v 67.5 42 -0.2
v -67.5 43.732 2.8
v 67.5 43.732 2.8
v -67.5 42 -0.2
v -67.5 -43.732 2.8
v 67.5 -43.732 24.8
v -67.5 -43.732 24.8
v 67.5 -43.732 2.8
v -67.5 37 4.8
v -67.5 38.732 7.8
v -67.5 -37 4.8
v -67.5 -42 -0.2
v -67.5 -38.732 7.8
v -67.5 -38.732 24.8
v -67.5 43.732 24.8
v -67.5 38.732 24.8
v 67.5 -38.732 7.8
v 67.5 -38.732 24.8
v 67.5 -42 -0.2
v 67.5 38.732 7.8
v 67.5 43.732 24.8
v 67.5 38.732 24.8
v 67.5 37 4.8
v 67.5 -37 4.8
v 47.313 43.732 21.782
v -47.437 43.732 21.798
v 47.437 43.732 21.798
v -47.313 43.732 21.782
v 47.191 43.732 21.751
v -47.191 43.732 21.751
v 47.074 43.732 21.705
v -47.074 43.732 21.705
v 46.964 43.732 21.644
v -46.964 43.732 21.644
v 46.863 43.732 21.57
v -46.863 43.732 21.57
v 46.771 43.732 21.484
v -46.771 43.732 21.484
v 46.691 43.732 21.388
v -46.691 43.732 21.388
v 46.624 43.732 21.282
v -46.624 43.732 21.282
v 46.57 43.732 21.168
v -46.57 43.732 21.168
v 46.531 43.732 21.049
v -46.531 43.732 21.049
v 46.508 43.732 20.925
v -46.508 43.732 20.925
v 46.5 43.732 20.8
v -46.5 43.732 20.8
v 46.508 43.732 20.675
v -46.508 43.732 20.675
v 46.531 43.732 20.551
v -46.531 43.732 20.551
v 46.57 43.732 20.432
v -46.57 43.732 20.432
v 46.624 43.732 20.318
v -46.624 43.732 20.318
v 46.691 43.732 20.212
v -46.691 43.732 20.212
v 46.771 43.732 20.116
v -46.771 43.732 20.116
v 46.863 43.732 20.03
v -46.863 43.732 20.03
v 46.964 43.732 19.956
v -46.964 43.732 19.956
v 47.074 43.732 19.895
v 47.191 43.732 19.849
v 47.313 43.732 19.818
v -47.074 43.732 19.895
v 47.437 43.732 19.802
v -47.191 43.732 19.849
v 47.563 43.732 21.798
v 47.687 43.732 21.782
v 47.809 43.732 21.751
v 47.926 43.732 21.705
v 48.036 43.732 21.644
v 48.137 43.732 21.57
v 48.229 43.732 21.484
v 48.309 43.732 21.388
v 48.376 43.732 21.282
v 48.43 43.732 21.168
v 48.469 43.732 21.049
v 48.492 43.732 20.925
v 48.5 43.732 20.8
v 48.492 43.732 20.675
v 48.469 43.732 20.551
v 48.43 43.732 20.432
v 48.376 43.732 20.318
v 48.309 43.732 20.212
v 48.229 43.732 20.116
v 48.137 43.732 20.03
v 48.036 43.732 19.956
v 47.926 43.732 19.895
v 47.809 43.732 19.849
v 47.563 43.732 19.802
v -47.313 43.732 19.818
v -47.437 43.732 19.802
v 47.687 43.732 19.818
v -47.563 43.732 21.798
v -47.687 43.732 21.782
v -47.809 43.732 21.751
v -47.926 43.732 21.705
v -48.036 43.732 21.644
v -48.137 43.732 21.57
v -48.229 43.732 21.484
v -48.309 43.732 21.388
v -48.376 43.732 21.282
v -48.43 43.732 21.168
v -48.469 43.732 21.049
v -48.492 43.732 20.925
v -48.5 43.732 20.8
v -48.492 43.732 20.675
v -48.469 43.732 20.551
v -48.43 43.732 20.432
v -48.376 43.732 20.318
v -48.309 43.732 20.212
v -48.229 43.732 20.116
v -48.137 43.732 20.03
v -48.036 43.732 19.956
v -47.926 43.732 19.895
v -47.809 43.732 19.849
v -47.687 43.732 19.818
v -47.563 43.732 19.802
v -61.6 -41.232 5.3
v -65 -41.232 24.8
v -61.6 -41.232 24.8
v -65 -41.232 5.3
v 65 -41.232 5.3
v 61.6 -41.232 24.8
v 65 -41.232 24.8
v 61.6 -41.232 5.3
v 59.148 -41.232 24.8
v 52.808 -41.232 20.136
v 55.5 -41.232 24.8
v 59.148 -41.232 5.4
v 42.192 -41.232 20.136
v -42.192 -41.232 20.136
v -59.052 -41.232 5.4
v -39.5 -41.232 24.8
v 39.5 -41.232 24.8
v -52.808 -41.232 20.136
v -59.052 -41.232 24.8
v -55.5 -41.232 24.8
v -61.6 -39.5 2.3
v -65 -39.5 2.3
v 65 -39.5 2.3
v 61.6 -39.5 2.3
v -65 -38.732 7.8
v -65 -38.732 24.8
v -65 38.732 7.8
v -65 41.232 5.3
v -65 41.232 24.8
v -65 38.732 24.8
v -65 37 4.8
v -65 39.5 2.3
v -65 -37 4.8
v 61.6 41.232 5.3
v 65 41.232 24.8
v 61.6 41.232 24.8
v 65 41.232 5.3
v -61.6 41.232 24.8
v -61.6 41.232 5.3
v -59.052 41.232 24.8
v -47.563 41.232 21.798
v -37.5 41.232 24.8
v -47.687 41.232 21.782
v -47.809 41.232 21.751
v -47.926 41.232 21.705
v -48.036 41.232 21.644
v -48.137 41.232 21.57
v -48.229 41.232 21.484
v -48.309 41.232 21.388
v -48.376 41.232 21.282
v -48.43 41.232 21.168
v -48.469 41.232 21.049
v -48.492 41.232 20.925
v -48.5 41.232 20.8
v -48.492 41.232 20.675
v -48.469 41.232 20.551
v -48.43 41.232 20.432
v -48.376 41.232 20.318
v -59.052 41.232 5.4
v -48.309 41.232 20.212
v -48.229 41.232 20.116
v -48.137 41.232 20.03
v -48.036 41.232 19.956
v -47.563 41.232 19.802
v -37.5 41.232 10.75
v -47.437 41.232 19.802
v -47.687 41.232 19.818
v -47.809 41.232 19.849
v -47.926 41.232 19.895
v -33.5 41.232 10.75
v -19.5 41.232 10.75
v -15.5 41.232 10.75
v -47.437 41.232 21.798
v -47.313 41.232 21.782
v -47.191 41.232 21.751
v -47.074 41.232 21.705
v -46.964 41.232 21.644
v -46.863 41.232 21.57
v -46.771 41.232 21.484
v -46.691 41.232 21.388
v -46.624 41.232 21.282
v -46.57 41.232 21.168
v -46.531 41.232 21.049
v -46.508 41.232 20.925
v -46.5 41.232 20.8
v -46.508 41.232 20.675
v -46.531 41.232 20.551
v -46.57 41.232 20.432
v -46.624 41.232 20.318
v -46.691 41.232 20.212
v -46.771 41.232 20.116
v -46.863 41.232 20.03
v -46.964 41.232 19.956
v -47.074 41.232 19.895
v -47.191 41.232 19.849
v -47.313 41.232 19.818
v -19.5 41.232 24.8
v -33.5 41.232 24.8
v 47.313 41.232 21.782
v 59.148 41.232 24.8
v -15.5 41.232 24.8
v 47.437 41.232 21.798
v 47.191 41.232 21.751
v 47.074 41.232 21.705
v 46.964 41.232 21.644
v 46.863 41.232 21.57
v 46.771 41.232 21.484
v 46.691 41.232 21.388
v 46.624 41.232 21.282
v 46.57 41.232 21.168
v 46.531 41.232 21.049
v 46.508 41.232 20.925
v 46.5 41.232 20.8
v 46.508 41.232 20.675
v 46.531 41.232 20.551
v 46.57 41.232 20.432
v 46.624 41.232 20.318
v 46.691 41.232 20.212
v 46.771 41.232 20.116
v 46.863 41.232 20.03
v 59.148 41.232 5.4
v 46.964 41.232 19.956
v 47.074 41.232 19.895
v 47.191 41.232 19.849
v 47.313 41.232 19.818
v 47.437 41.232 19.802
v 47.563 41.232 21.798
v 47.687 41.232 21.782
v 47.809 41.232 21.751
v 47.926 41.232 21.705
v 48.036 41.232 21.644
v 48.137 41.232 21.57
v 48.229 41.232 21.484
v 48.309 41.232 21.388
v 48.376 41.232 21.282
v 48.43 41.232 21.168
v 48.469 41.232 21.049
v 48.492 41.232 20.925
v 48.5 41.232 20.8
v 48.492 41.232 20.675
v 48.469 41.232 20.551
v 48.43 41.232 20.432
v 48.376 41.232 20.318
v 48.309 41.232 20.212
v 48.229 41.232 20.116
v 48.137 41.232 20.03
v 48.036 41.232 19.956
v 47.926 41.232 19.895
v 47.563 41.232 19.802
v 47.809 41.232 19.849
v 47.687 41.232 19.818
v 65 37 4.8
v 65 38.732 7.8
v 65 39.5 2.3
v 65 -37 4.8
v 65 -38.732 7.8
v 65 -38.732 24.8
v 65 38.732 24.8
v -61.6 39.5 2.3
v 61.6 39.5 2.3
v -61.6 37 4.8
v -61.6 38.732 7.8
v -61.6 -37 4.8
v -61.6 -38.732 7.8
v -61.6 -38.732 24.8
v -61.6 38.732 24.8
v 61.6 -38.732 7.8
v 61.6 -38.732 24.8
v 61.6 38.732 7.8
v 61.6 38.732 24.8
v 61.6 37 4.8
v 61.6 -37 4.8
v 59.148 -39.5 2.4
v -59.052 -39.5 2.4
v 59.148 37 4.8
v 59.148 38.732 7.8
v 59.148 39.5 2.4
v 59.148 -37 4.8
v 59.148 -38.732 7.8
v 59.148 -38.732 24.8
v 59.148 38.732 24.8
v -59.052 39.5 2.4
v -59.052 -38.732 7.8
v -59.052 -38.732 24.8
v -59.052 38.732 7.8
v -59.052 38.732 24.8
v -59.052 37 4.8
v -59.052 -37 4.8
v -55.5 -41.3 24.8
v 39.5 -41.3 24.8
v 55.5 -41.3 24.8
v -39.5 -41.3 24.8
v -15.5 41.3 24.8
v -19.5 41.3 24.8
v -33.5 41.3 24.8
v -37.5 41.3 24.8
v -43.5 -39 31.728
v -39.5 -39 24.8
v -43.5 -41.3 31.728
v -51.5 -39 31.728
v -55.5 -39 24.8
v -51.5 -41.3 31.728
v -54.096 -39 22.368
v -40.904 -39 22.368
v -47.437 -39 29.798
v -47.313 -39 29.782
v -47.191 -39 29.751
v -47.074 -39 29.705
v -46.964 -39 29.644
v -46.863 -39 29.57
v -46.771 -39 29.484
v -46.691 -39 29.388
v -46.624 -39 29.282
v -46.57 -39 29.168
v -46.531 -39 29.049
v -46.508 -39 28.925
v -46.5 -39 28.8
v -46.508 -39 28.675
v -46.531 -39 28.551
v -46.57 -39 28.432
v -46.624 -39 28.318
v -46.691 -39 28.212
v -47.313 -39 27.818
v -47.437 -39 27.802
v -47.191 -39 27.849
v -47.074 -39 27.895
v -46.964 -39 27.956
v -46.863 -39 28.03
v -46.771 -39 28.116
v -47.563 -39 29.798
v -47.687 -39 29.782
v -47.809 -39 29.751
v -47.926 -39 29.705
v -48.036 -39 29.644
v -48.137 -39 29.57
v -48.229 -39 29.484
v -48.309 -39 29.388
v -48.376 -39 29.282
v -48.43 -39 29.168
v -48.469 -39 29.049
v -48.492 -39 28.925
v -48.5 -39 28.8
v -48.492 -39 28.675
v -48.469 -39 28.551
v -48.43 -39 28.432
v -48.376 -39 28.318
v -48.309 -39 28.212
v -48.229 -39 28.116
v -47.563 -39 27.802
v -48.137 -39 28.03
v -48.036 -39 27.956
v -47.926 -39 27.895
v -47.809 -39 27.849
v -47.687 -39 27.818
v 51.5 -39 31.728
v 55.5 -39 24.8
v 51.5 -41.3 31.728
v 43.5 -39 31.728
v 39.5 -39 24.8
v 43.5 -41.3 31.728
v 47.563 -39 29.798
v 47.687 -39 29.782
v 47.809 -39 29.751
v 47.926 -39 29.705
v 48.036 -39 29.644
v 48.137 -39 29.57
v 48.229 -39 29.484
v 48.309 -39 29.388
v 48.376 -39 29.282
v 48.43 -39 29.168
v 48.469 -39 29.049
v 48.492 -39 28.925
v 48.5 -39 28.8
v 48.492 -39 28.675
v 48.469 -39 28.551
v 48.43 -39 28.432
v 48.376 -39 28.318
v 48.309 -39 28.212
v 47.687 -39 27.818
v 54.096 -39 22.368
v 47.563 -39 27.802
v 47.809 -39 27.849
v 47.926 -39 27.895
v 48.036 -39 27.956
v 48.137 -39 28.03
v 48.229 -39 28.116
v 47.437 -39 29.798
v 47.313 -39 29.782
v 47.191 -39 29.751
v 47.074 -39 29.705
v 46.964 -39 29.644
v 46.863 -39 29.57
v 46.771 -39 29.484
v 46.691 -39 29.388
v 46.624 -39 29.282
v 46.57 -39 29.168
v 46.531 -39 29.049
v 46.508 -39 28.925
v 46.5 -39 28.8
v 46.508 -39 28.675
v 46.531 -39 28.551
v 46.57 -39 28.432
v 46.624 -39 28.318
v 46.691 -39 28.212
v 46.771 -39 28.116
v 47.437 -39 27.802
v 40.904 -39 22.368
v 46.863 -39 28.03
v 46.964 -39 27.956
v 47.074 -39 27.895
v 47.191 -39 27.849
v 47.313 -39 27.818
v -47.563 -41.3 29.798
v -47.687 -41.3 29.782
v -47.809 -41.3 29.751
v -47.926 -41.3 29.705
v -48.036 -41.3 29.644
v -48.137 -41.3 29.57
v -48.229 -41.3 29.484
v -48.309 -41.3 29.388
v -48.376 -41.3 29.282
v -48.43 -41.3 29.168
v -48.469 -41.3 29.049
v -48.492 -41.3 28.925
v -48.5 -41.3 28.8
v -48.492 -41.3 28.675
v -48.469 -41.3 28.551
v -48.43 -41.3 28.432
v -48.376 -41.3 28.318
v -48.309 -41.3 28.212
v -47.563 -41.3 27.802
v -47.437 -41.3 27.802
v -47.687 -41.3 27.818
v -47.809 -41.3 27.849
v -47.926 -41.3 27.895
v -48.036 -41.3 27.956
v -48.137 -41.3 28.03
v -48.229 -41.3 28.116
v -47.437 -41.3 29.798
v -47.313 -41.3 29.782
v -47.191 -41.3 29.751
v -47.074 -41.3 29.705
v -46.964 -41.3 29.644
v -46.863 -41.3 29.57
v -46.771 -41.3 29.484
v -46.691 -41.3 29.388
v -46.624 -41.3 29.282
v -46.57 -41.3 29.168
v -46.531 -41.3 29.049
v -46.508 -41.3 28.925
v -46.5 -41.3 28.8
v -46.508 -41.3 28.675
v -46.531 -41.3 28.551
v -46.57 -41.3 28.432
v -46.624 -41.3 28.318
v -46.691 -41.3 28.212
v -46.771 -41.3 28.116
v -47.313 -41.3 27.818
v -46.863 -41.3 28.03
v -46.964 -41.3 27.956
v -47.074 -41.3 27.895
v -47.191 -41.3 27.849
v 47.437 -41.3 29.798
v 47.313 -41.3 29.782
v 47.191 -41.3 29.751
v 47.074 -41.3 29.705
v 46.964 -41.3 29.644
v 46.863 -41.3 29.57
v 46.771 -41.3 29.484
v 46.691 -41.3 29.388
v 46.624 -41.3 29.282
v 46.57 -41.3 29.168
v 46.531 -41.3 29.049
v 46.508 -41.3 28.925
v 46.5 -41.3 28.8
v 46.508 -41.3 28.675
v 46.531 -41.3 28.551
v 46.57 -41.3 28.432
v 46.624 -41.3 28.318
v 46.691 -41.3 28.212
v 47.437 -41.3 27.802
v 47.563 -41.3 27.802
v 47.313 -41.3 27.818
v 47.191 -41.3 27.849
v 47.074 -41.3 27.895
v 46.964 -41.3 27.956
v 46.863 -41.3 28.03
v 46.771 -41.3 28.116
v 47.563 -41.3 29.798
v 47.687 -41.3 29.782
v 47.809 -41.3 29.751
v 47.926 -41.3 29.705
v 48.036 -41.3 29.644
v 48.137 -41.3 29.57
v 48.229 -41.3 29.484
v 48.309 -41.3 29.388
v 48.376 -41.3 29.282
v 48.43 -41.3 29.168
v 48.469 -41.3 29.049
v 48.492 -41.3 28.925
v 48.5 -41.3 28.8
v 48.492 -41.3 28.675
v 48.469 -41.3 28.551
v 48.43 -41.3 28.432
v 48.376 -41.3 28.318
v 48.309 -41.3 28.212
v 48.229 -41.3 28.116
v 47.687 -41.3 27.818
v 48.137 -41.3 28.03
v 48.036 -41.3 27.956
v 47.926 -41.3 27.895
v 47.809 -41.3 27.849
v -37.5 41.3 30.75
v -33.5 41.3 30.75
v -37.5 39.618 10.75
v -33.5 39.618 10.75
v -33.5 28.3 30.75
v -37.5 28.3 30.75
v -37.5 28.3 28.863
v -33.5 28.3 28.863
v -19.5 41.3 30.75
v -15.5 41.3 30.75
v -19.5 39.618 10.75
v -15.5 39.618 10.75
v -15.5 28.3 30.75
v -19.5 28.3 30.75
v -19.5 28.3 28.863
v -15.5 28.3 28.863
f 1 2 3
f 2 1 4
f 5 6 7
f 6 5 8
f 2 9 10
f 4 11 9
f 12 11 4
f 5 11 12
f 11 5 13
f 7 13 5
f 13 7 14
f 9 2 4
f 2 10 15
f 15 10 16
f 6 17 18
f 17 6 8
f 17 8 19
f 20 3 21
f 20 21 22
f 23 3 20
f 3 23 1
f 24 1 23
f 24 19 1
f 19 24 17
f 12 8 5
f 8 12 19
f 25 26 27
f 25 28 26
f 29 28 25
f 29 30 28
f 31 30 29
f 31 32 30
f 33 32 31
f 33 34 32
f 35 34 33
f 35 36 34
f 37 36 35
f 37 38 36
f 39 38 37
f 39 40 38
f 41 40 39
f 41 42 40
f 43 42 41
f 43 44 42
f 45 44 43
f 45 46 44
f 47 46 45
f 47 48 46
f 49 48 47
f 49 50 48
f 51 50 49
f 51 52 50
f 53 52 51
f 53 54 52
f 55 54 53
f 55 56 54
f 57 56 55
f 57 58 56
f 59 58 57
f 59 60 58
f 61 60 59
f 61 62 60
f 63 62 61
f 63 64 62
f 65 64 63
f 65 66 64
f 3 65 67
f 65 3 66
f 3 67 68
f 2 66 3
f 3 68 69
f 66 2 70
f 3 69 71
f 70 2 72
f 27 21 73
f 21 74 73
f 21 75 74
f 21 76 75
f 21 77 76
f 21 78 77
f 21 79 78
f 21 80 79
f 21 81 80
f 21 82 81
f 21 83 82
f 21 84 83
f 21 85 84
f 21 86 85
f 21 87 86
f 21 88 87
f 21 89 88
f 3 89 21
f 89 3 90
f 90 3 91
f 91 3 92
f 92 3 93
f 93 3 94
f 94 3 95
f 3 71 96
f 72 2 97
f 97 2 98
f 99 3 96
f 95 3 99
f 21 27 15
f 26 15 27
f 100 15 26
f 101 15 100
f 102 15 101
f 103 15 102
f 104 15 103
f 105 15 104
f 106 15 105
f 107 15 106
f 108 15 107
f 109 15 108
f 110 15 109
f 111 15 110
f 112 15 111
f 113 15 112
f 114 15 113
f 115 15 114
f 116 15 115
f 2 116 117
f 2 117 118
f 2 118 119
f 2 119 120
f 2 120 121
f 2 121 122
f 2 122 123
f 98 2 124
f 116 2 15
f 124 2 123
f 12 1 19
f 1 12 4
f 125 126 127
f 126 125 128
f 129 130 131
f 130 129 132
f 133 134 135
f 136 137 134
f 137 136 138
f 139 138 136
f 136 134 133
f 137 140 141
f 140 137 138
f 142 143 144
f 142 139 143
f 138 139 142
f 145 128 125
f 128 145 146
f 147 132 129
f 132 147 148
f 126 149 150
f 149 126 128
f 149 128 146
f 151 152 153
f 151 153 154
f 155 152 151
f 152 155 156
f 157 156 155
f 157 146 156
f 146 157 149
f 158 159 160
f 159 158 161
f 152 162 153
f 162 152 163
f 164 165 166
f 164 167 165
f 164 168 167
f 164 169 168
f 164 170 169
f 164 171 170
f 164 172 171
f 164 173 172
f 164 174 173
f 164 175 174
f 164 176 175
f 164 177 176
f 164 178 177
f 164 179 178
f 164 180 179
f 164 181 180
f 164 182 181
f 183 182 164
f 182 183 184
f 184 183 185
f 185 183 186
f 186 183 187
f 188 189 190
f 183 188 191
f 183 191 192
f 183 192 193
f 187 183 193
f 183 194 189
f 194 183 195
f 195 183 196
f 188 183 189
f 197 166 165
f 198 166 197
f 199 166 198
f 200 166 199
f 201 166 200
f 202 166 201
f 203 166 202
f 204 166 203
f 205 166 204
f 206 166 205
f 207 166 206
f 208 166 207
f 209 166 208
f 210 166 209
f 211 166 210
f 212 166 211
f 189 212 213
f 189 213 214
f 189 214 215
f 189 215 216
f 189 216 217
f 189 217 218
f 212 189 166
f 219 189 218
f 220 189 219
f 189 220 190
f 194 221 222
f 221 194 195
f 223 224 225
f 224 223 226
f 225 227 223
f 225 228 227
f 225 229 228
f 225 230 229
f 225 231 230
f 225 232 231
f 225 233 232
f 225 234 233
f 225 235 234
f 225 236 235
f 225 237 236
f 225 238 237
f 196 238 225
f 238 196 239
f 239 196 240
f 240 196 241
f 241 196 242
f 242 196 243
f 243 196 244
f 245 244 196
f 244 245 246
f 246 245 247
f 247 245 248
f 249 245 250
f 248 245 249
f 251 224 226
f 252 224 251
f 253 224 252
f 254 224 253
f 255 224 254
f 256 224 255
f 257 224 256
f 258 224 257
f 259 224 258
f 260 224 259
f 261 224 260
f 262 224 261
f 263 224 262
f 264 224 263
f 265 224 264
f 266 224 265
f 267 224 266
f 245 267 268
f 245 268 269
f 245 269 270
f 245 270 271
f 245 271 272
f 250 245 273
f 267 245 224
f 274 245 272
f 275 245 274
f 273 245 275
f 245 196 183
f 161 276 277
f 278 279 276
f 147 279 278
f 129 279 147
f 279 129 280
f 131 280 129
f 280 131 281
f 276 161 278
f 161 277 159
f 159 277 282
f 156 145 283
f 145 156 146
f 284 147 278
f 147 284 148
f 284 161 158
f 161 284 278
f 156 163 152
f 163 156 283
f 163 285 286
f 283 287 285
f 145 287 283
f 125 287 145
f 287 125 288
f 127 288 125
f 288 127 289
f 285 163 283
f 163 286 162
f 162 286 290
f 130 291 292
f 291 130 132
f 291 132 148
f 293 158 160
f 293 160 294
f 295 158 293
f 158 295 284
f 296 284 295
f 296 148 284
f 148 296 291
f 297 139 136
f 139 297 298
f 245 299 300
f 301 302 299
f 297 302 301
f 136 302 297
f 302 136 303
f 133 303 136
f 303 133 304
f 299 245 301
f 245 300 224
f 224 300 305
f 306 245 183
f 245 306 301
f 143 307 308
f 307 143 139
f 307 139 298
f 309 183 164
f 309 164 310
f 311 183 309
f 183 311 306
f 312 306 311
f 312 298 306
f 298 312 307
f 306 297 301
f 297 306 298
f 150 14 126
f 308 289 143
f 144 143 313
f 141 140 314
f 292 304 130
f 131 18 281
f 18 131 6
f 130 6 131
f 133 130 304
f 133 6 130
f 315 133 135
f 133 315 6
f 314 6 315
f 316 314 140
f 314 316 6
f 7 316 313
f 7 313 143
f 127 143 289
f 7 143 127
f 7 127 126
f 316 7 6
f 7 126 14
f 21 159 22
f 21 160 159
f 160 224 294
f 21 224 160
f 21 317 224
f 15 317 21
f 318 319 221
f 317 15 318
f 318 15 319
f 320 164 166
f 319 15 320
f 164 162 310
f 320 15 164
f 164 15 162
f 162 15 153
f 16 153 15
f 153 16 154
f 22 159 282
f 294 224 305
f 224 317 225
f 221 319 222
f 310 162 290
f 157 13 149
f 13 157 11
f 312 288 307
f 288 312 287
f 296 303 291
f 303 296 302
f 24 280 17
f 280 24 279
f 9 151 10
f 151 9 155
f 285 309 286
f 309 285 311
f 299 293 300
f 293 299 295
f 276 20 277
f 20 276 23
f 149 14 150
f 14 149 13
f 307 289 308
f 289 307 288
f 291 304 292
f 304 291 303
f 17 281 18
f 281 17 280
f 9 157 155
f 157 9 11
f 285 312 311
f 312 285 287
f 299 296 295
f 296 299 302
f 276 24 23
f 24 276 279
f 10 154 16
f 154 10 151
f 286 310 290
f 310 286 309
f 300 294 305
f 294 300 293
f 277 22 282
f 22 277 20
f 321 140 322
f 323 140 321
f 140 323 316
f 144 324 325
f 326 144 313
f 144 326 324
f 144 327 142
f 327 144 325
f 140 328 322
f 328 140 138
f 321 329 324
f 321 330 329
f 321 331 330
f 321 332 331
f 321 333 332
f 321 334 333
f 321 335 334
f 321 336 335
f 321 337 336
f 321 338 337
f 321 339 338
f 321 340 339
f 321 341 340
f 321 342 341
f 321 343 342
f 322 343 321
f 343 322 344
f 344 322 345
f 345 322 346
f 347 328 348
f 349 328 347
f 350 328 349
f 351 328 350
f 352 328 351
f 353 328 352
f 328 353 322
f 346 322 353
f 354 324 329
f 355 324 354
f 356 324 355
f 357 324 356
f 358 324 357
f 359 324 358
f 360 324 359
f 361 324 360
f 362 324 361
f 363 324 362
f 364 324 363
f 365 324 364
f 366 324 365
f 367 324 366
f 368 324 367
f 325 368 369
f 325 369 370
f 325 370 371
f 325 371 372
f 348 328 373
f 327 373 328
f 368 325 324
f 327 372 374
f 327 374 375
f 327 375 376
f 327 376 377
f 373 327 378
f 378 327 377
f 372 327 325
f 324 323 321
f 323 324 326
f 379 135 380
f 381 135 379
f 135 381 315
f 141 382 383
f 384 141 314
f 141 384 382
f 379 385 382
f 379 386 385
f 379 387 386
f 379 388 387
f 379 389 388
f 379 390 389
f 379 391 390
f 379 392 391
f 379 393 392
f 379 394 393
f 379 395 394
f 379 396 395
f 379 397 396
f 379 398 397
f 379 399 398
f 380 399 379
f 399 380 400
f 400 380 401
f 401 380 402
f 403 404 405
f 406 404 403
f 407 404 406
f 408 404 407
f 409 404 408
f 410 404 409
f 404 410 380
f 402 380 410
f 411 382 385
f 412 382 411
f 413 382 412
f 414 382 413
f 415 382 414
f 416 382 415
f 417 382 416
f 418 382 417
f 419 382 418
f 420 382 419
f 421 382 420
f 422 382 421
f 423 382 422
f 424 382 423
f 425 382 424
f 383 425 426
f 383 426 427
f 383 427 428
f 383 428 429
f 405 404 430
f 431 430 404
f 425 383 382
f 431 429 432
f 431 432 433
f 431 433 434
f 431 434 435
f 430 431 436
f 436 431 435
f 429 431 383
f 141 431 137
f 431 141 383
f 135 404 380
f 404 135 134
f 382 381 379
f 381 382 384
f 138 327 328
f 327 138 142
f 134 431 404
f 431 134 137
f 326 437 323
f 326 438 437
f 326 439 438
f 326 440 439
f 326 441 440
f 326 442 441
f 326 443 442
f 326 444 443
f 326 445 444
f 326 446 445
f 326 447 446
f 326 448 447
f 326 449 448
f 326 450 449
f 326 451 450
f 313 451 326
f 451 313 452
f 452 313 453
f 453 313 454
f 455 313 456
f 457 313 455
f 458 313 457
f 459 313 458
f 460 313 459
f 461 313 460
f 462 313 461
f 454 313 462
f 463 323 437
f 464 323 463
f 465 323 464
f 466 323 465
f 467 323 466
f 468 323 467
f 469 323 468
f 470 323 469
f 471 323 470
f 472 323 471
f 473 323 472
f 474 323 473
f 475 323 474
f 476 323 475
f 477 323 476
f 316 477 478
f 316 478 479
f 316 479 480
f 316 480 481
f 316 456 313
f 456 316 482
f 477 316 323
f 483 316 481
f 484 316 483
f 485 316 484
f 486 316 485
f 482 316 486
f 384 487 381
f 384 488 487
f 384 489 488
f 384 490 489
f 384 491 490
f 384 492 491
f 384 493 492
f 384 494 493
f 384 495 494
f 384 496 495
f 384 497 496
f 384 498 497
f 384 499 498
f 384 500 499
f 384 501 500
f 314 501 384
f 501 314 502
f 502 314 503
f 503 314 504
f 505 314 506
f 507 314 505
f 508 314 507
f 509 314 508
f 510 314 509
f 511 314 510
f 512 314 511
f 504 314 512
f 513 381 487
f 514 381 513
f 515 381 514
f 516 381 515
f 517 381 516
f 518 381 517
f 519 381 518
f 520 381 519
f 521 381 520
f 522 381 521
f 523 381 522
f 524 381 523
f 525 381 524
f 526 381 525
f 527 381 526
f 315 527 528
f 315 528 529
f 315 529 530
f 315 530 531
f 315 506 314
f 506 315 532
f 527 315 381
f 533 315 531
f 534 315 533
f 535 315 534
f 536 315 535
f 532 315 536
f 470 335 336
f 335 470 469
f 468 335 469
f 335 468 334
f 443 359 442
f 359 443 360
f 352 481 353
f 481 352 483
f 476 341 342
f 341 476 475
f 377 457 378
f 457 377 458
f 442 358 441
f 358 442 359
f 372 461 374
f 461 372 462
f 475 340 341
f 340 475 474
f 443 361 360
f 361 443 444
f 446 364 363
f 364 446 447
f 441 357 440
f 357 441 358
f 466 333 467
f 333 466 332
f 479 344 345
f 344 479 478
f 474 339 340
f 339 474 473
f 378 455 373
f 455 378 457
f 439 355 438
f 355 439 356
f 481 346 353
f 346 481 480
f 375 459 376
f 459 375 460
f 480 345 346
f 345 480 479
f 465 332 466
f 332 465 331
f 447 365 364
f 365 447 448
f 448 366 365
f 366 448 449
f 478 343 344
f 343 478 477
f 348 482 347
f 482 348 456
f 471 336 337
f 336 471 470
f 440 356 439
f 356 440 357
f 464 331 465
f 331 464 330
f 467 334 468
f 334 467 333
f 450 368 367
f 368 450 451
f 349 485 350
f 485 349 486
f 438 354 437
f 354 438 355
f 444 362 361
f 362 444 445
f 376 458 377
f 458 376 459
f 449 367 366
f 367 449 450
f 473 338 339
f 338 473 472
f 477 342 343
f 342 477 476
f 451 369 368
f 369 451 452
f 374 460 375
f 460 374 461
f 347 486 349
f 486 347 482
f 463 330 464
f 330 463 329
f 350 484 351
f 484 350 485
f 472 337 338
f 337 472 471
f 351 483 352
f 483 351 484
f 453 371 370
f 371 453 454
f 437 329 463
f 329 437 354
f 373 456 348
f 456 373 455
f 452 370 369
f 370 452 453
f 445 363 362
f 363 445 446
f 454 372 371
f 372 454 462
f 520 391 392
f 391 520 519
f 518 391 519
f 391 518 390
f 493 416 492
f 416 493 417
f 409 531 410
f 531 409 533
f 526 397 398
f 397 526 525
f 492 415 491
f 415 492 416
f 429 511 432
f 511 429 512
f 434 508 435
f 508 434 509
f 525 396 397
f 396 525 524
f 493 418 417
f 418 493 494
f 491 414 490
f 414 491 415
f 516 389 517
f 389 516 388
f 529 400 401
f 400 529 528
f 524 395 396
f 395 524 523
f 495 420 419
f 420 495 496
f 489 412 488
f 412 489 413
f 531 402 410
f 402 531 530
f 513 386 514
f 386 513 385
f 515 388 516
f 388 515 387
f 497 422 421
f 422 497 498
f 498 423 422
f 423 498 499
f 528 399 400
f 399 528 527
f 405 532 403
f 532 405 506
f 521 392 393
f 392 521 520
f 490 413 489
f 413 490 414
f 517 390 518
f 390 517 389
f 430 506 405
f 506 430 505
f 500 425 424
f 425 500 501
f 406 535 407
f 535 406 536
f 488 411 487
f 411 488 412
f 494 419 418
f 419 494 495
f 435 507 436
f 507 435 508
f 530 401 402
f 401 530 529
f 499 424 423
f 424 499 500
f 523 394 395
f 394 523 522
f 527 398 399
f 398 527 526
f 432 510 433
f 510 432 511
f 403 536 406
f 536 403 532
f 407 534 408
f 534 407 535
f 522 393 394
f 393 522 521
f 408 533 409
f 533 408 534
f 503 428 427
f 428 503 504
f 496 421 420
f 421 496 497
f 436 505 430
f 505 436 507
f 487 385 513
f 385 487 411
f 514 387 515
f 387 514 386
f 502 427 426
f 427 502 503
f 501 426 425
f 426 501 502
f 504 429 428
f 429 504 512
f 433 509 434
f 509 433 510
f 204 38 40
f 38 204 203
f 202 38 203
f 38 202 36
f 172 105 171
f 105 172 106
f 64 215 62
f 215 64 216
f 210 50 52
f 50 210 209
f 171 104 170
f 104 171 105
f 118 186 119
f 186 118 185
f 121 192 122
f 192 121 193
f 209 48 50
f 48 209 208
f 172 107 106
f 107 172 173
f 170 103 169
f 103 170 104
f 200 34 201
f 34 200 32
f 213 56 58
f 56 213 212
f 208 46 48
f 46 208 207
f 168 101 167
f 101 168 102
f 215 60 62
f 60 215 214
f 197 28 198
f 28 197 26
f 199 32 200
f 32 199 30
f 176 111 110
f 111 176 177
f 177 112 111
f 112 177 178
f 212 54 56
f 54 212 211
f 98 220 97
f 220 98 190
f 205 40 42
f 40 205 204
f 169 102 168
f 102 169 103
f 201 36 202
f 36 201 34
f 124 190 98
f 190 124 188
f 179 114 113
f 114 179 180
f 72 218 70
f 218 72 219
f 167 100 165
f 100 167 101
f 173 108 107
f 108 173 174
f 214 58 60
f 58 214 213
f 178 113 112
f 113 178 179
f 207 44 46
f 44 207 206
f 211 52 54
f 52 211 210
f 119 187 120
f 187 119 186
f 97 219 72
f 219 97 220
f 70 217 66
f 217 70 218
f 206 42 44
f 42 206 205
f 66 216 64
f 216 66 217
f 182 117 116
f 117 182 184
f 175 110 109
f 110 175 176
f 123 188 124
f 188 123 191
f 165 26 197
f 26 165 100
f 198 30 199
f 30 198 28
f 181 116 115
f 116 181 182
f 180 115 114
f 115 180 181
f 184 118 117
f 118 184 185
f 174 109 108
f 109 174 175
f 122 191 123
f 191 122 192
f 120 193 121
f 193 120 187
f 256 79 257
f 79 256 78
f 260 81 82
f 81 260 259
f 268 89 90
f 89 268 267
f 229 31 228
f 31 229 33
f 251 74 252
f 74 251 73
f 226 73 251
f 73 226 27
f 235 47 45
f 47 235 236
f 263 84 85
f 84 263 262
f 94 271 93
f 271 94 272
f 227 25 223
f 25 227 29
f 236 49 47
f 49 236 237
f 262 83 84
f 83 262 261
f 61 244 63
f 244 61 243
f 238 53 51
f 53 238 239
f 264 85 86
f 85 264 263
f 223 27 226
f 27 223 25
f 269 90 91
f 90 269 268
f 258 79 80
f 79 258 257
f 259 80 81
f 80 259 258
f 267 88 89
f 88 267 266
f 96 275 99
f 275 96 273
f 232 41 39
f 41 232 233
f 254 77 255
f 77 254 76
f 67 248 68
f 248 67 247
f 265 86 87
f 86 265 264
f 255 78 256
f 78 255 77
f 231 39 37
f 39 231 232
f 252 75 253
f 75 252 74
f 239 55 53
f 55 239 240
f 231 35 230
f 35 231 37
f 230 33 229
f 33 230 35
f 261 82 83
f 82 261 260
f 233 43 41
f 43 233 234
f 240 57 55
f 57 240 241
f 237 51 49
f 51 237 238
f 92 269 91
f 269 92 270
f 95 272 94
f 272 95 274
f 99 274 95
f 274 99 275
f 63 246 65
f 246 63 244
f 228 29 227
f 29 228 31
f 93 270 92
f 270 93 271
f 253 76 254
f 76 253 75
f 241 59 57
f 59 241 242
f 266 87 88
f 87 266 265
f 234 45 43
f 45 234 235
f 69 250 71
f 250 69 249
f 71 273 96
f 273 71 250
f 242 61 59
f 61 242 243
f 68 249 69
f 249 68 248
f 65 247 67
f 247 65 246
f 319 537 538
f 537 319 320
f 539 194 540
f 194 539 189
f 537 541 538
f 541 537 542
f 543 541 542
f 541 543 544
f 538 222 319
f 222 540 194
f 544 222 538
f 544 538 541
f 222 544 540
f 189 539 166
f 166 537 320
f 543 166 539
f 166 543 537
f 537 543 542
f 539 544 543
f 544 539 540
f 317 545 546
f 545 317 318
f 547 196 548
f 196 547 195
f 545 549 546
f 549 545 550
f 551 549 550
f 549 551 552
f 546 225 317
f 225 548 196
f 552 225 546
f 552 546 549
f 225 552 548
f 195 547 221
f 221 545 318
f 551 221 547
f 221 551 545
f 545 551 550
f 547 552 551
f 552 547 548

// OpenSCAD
$vpr = [62, 360, 55];
$vpt = [1.5, -.5, 25];
$vpd = 446;

/*//////////////////////////////////////////////////////////////////
              -    FB Aka Heartman/Hearty 2016     -                   
              -   http://heartygfx.blogspot.com    -                  
              -       OpenScad Parametric Box      -                     
              -         CC BY-NC 3.0 License       -                      
////////////////////////////////////////////////////////////////////                                                                                                             
12/02/2016 - Fixed minor bug 
28/02/2016 - Added holes ventilation option                    
09/03/2016 - Added PCB feet support, fixed the shell artefact on export mode. 

*/ ////////////////////////// - Info - //////////////////////////////

// All coordinates are starting as integrated circuit pins.
// From the top view :

//   CoordD           <---       CoordC
//                                 ^
//                                 ^
//                                 ^
//   CoordA           --->       CoordB

////////////////////////////////////////////////////////////////////

/////////////////////////// - Box parameters - //////////////////////

/* [Box dimensions] */
// - Longueur - Length  
Length = 135;
// - Largeur - Width
Width = 88;
// - Hauteur - Height  
Height = 50;
// - Epaisseur - Wall thickness  
Thick = 2.5; //[2:5]  

/* [Box options] */
// - DiamÃ¨tre Coin arrondi - Filet diameter  
Filet = 2; //[0.1:12] 
// - lissage de l'arrondi - Filet smoothness  
Resolution = 1; //[1:100] 
// - TolÃ©rance - Tolerance (Panel/rails gap)
m = 0.9;
// Pieds PCB - PCB feet (x4) 
PCBFeet = 0; // [0:No, 1:Yes]
// - Decorations to ventilation holes
Vent = 0; // [0:No, 1:Yes]
// - Decoration-Holes width (in mm)
Vent_width = 0;

/////////////////////////// - PCB parameters - //////////////////////

/* [PCB_Feet] */
//All dimensions are from the center foot axis

// - Coin bas gauche - Low left corner X position
PCBPosX = 0;
// - Coin bas gauche - Low left corner Y position
PCBPosY = 0;
// - Longueur PCB - PCB Length
PCBLength = 0;
// - Largeur PCB - PCB Width
PCBWidth = 0;
// - Heuteur pied - Feet height
FootHeight = 0;
// - DiamÃ¨tre pied - Foot diameter
FootDia = 0;
// - DiamÃ¨tre trou - Hole diameter
FootHole = 0;


////////////////////////////////////////////////////////////////////////
//////////////////////// <- Render Manager -> //////////////////////////
////////////////////////////////////////////////////////////////////////

/* [STL element to export] */
//Coque haut - Top shell
TShell = 1; // [0:No, 1:Yes]
//Coque bas- Bottom shell
BShell = 0; // [0:No, 1:Yes]
//Panneau avant - Front panel
FPanL = 0; // [0:No, 1:Yes]
//Panneau arriÃ¨re - Back panel  
BPanL = 0; // [0:No, 1:Yes]

/* [Hidden] */
// - Couleur coque - Shell color  
Couleur1 = "Orange";
// - Couleur panneaux - Panels color    
Couleur2 = "OrangeRed";
// Thick X 2 - making decorations thicker if it is a vent to make sure they go through shell
Dec_Thick = Vent ? Thick * 2 : Thick;
// - Depth decoration
Dec_size = Vent ? Thick * 2 : 0.8;

////////////////// - Generic rounded box - ///////////////

module RoundBox($a = Length, $b = Width, $c = Height) { // Cube bords arrondis
  $fn = Resolution;
  translate([0, Filet, Filet]) {
    minkowski() {
      cube([$a - (Length / 2), $b - (2 * Filet), $c - (2 * Filet)], center = false);
      rotate([0, 90, 0]) {
        cylinder(r = Filet, h = Length / 2, center = false);
      }
    }
  }
} // End of RoundBox Module

////////////////////////////////// - Module Coque/Shell - //////////////////////////////////         

module Coque() { //Coque - Shell  
  Thick = Thick * 2;
  difference() {
    difference() { //sides decoration
      union() {
        difference() { //soustraction de la forme centrale - Substraction Fileted box

          difference() { //soustraction cube median - Median cube slicer
            union() { //union               
              difference() { //Coque    
                RoundBox();
                translate([Thick / 2, Thick / 2, Thick / 2]) {
                  RoundBox($a = Length - Thick, $b = Width - Thick, $c = Height - Thick);
                }
              } //Fin diff Coque                            
              difference() { //largeur Rails        
                translate([Thick + m, Thick / 2, Thick / 2]) { // Rails
                  RoundBox($a = Length - ((2 * Thick) + (2 * m)), $b = Width - Thick, $c = Height - (Thick * 2));
                } //fin Rails
                translate([((Thick + m / 2) * 1.55), Thick / 2, Thick / 2 + 0.1]) { // +0.1 added to avoid the artefact
                  RoundBox($a = Length - ((Thick * 3) + 2 * m), $b = Width - Thick, $c = Height - Thick);
                }
              } //Fin largeur Rails
            } //Fin union                                   
            translate([-Thick, -Thick, Height / 2]) { // Cube Ã  soustraire
              cube([Length + 100, Width + 100, Height], center = false);
            }
          } //fin soustraction cube median - End Median cube slicer
          translate([-Thick / 2, Thick, Thick]) { // Forme de soustraction centrale 
            RoundBox($a = Length + Thick, $b = Width - Thick * 2, $c = Height - Thick);
          }
        }

        difference() { // wall fixation box legs
          union() {
            translate([3 * Thick + 5, Thick, Height / 2]) {
              rotate([90, 0, 0]) {
                $fn = 6;
                cylinder(d = 16, Thick / 2);
              }
            }

            translate([Length - ((3 * Thick) + 5), Thick, Height / 2]) {
              rotate([90, 0, 0]) {
                $fn = 6;
                cylinder(d = 16, Thick / 2);
              }
            }

          }
          translate([4, Thick + Filet, Height / 2 - 57]) {
            rotate([45, 0, 0]) {
              cube([Length, 40, 40]);
            }
          }
          translate([0, -(Thick * 1.46), Height / 2]) {
            cube([Length, Thick * 2, 10]);
          }
        } //Fin fixation box legs
      }

      union() { // outbox sides decorations

        for (i = [0: Thick: Length / 4]) {

          // Ventilation holes part code submitted by Ettie - Thanks ;) 
          translate([10 + i, -Dec_Thick + Dec_size, 1]) {
            cube([Vent_width, Dec_Thick, Height / 4]);
          }
          translate([(Length - 10) - i, -Dec_Thick + Dec_size, 1]) {
            cube([Vent_width, Dec_Thick, Height / 4]);
          }
          translate([(Length - 10) - i, Width - Dec_size, 1]) {
            cube([Vent_width, Dec_Thick, Height / 4]);
          }
          translate([10 + i, Width - Dec_size, 1]) {
            cube([Vent_width, Dec_Thick, Height / 4]);
          }

        } // fin de for
        // }
      } //fin union decoration
    } //fin difference decoration

    union() { //sides holes
      $fn = 50;
      translate([3 * Thick + 5, 20, Height / 2 + 4]) {
        rotate([90, 0, 0]) {
          cylinder(d = 2, 20);
        }
      }
      translate([Length - ((3 * Thick) + 5), 20, Height / 2 + 4]) {
        rotate([90, 0, 0]) {
          cylinder(d = 2, 20);
        }
      }
      translate([3 * Thick + 5, Width + 5, Height / 2 - 4]) {
        rotate([90, 0, 0]) {
          cylinder(d = 2, 20);
        }
      }
      translate([Length - ((3 * Thick) + 5), Width + 5, Height / 2 - 4]) {
        rotate([90, 0, 0]) {
          cylinder(d = 2, 20);
        }
      }
    } //fin de sides holes

  } //fin de difference holes
} // fin coque 

////////////////////////////// - Experiment - ///////////////////////////////////////////

/////////////////////// - Foot with base filet - /////////////////////////////
module foot(FootDia, FootHole, FootHeight) {
  Filet = 2;
  color(Couleur1)
  translate([0, 0, Filet - 1.5])
  difference() {

    difference() {
      //translate ([0,0,-Thick]){
      cylinder(d = FootDia + Filet, FootHeight - Thick, $fn = 100);
      //}
      rotate_extrude($fn = 100) {
        translate([(FootDia + Filet * 2) / 2, Filet, 0]) {
          minkowski() {
            square(10);
            circle(Filet, $fn = 100);
          }
        }
      }
    }
    cylinder(d = FootHole, FootHeight + 1, $fn = 100);
  }
} // Fin module foot

module Feet() {
  //////////////////// - PCB only visible in the preview mode - /////////////////////    
  translate([3 * Thick + 2, Thick + 5, FootHeight + (Thick / 2) - 0.5]) {

    %
    square([PCBLength + 10, PCBWidth + 10]);
    translate([PCBLength / 2, PCBWidth / 2, 0.5]) {
      color("Olive") %
        text("PCB", halign = "center", valign = "center", font = "Arial black");
    }
  } // Fin PCB 

  ////////////////////////////// - 4 Feet - //////////////////////////////////////////     
  translate([3 * Thick + 7, Thick + 10, Thick / 2]) {
    foot(FootDia, FootHole, FootHeight);
  }
  translate([(3 * Thick) + PCBLength + 7, Thick + 10, Thick / 2]) {
    foot(FootDia, FootHole, FootHeight);
  }
  translate([(3 * Thick) + PCBLength + 7, (Thick) + PCBWidth + 10, Thick / 2]) {
    foot(FootDia, FootHole, FootHeight);
  }
  translate([3 * Thick + 7, (Thick) + PCBWidth + 10, Thick / 2]) {
    foot(FootDia, FootHole, FootHeight);
  }

} // Fin du module Feet

////////////////////////////////////////////////////////////////////////
////////////////////// <- Holes Panel Manager -> ///////////////////////
////////////////////////////////////////////////////////////////////////

//                           <- Panel ->  
module Panel(Length, Width, Thick, Filet) {
  scale([0.5, 1, 1])
  minkowski() {
    cube([Thick, Width - (Thick * 2 + Filet * 2 + m), Height - (Thick * 2 + Filet * 2 + m)]);
    translate([0, Filet, Filet])
    rotate([0, 90, 0])
    cylinder(r = Filet, h = Thick, $fn = 100);
  }
}

//                          <- Circle hole -> 
// Cx=Cylinder X position | Cy=Cylinder Y position | Cdia= Cylinder dia | Cheight=Cyl height
module CylinderHole(OnOff, Cx, Cy, Cdia) {
  if (OnOff == 1)
    translate([Cx, Cy, -1])
  cylinder(d = Cdia, 10, $fn = 50);
}
//                          <- Square hole ->  
// Sx=Square X position | Sy=Square Y position | Sl= Square Length | Sw=Square Width | Filet = Round corner
module SquareHole(OnOff, Sx, Sy, Sl, Sw, Filet) {
  if (OnOff == 1)
    minkowski() {
      translate([Sx + Filet / 2, Sy + Filet / 2, -1])
      cube([Sl - Filet, Sw - Filet, 10]);
      cylinder(d = Filet, h = 10, $fn = 100);
    }
}

//                      <- Linear text panel -> 
module LText(OnOff, Tx, Ty, Font, Size, Content) {
  if (OnOff == 0)
    translate([Tx, Ty, Thick + .5])
  linear_extrude(height = 0.5) {
    text(Content, size = Size, font = Font);
  }
}
//                     <- Circular text panel->  
module CText(OnOff, Tx, Ty, Font, Size, TxtRadius, Angl, Turn, Content) {
  if (OnOff == 0) {
    Angle = -Angl / len(Content);
    translate([Tx, Ty, Thick + .5])
    for (i = [0: len(Content) - 1]) {
      rotate([0, 0, i * Angle + 90 + Turn])
      translate([0, TxtRadius, 0]) {
        linear_extrude(height = 0.5) {
          text(Content[i], font = Font, size = Size, valign = "baseline", halign = "center");
        }
      }
    }
  }
}
////////////////////// <- New module Panel -> //////////////////////
module FPanL() {
  difference() {
    color(Couleur2)
    Panel(Length, Width, Thick, Filet);

    rotate([90, 0, 90]) {
      color(Couleur2) {

        //////////////////////// <- Hole Specifications -> //////////////////////

        SquareHole(0, 20, 20, 15, 10, 1); //(On/Off, Xpos,Ypos,Length,Width,Filet)
        SquareHole(0, 40, 20, 15, 10, 1);
        SquareHole(0, 60, 20, 15, 10, 1);
        CylinderHole(0, 27, 40, 8); //(On/Off, Xpos, Ypos, Diameter)
        CylinderHole(1, 30.5, 23, 11.8);
        CylinderHole(1, 49.5, 23, 11.8);
        SquareHole(0, 20, 50, 80, 30, 3);
        CylinderHole(0, 93, 30, 10);
        SquareHole(0, 120, 20, 30, 60, 3);
        //                            <- To here -> 
      }
    }
  }

  color(Couleur1) {
    translate([-.5, 0, 0])
    rotate([90, 0, 90]) {

      //                      <- Adding text from here ->          
      LText(1, 20, 83, "Arial Black", 4, "Digital Screen"); //(On/Off, Xpos, Ypos, "Font", Size, "Text")
      LText(1, 120, 83, "Arial Black", 4, "Level");
      LText(1, 20, 11, "Arial Black", 6, "  1     2      3");
      CText(1, 93, 29, "Arial Black", 4, 10, 180, 0, "1 . 2 . 3 . 4 . 5 . 6"); //(On/Off, Xpos, Ypos, "Font", Size, Diameter, Arc(Deg), Starting Angle(Deg),"Text")
      //                            <- To here ->
    }
  }
}

/////////////////////////// <- Main part -> /////////////////////////


// Rotate & Translate for printing
// Translate - X=(-.5*Length) Y=(-.5*Width) Z=(-Height)
rotate([180,0,0]){
translate([-.5*Length,-.5*Width,-1*Height]){

difference(){ //Subtract additional Geometries from box
    union(){  //Add addtional Geometries to box
  if (TShell == 1)
    // Coque haut - Top Shell
    color(Couleur1, 1) {
      translate([0, Width, Height + 0.2]) {
        rotate([0, 180, 180]) {
          Coque();
        }
      }
    }

  if (BShell == 1)
    // Coque bas - Bottom shell
    color(Couleur1) {
      Coque();
    }

  // Pied support PCB - PCB feet
  if (PCBFeet == 1)
    // Feet
    translate([PCBPosX, PCBPosY, 0]) {
      Feet();
    }

  // Panneau avant - Front panel  <<<<<< Text and holes only on this one.
  //rotate([0,-90,-90]) 
  if (FPanL == 1)
    translate([Length - (Thick * 2 + m / 2), Thick + m / 2, Thick + m / 2])
  FPanL();

  //Panneau arriÃ¨re - Back panel
  if (BPanL == 1)
    color(Couleur2)
  translate([Thick + m / 2, Thick + m / 2, Thick + m / 2])
  Panel(Length, Width, Thick, Filet);


///////////////////Added Geometries////////////////
  
////////////////////// Battey /////////////////////
/*
translate([8.5, 3, 2.5]){
  color([0.2,0.4,1]) {
    cube([50, 26, 16.5], center=false);
  }
}
*/
//////////////////// End Battey ///////////////////

///////////////////Start Union Geometries//////////
 // Battery holder Bottom Shell
  rotate([0, 0, 270]){
  // Sets position of both brackets
  translate([-15.7, 30, 19.25]){
    union(){
      translate([0, 18, 0]){
        difference() {
          cube([13, 4, 20], center=false);

          color([1,0.8,0]) {
            rotate([0, 32, 0]){
              translate([-14, -.25, 0]){
                cube([13, 4.5, 25], center=false);
              }
            }
          }
        }
      }
      difference() {
        cube([13, 4, 20], center=false);

        color([1,0.8,0]) {
          rotate([0, 32, 0]){
            translate([-14, -.25, 0]){
              cube([13, 4.5, 25], center=false);
            }
          }
        }
      }
    }
  }
}

/*
translate([60.9, 31, 0]) { // Battery Cage
    rotate([0, 0, 180]) {
      difference() {

// Battery Cage Geometry
difference() {
  translate([0, -1.4, 0]){
    cube([54, 29.5, 16], center=false);
  }

  translate([2, .5, 0]){
    cube([54, 29.5, 16.1], center=false);
  }
  translate([-1.25, 25, -1]){
    rotate([315, 0, 0]){
      color([0.93,0,0]) {
        cube([4, 3, 8], center=false);
      }
    }
  }
}
// End Battery Cage Geometry
      }
    }
  }
*/
// End Battery Cage
  }
 /////////////////// End Union Geometries ///////////////
  
 ///////////////////Start Difference Geometries////////// 
  
  translate([135, 44, 0]) { //ESR Holes & Text
    rotate([0, 0, 90]) {
      translate([0, 4, 0]) {
        // Meter Cutout
        translate([0, 38, -5]) {
          color([0.2, 0.2, 1]) {
            {
              $fn = 100; //set sides to 100
              cylinder(r1 = 31, r2 = 31, h = 10, center = false);
            }
          }
          // Right Meter Mount
          translate([-32, -17, 0]) {
            color([1, 0.8, 0]) {
              {
                $fn = 100; //set sides to 100
                cylinder(r1 = 2, r2 = 2, h = 10, center = false);
              }
            }
          }
          // Left Meter Mount
          translate([32, -17, 0]) {
            color([1, 0.8, 0]) {
              {
                $fn = 100; //set sides to 100
                cylinder(r1 = 2, r2 = 2, h = 10, center = false);
              }
            }
          }
        }
        // Potentiometer Hole
        color([1, 0.8, 0]) {
          translate([0, 95, -5]) {
            {
              $fn = 100; //set sides to 100
              cylinder(r1 = 4, r2 = 4, h = 10, center = false);
            }
          }
        }
        // Potentiometer Guide Hole
        color([1, 0.8, 0]) {
          translate([11.5, 95, -5]) {
            {
              $fn = 100; //set sides to 100
              cylinder(r1 = 1.4, r2 = 1.4, h = 10, center = false);
            }
          }
        }
        // Zero Adjust Switch
        color([1, 0.8, 0]) {
          translate([24, 95, -5]) {
            {
              $fn = 100; //set sides to 100
              cylinder(r1 = 2.9, r2 = 2.9, h = 10, center = false);
            }
          }
        }
        // OFF Text
        color([1, 0, 0]) {
          rotate([0, 180, 0]) {
            translate([-30, 75, -.5]) {
              {
                linear_extrude(1)
                text("OFF",font="consolas:style=bold", size = 8);
              }
            }
          }
        }
      }
    }
  }
//End ESR Holes & Text

///////////////////End Difference Geometries/////////////
}
///////////////////End Added Geometries//////////////////
}
}
